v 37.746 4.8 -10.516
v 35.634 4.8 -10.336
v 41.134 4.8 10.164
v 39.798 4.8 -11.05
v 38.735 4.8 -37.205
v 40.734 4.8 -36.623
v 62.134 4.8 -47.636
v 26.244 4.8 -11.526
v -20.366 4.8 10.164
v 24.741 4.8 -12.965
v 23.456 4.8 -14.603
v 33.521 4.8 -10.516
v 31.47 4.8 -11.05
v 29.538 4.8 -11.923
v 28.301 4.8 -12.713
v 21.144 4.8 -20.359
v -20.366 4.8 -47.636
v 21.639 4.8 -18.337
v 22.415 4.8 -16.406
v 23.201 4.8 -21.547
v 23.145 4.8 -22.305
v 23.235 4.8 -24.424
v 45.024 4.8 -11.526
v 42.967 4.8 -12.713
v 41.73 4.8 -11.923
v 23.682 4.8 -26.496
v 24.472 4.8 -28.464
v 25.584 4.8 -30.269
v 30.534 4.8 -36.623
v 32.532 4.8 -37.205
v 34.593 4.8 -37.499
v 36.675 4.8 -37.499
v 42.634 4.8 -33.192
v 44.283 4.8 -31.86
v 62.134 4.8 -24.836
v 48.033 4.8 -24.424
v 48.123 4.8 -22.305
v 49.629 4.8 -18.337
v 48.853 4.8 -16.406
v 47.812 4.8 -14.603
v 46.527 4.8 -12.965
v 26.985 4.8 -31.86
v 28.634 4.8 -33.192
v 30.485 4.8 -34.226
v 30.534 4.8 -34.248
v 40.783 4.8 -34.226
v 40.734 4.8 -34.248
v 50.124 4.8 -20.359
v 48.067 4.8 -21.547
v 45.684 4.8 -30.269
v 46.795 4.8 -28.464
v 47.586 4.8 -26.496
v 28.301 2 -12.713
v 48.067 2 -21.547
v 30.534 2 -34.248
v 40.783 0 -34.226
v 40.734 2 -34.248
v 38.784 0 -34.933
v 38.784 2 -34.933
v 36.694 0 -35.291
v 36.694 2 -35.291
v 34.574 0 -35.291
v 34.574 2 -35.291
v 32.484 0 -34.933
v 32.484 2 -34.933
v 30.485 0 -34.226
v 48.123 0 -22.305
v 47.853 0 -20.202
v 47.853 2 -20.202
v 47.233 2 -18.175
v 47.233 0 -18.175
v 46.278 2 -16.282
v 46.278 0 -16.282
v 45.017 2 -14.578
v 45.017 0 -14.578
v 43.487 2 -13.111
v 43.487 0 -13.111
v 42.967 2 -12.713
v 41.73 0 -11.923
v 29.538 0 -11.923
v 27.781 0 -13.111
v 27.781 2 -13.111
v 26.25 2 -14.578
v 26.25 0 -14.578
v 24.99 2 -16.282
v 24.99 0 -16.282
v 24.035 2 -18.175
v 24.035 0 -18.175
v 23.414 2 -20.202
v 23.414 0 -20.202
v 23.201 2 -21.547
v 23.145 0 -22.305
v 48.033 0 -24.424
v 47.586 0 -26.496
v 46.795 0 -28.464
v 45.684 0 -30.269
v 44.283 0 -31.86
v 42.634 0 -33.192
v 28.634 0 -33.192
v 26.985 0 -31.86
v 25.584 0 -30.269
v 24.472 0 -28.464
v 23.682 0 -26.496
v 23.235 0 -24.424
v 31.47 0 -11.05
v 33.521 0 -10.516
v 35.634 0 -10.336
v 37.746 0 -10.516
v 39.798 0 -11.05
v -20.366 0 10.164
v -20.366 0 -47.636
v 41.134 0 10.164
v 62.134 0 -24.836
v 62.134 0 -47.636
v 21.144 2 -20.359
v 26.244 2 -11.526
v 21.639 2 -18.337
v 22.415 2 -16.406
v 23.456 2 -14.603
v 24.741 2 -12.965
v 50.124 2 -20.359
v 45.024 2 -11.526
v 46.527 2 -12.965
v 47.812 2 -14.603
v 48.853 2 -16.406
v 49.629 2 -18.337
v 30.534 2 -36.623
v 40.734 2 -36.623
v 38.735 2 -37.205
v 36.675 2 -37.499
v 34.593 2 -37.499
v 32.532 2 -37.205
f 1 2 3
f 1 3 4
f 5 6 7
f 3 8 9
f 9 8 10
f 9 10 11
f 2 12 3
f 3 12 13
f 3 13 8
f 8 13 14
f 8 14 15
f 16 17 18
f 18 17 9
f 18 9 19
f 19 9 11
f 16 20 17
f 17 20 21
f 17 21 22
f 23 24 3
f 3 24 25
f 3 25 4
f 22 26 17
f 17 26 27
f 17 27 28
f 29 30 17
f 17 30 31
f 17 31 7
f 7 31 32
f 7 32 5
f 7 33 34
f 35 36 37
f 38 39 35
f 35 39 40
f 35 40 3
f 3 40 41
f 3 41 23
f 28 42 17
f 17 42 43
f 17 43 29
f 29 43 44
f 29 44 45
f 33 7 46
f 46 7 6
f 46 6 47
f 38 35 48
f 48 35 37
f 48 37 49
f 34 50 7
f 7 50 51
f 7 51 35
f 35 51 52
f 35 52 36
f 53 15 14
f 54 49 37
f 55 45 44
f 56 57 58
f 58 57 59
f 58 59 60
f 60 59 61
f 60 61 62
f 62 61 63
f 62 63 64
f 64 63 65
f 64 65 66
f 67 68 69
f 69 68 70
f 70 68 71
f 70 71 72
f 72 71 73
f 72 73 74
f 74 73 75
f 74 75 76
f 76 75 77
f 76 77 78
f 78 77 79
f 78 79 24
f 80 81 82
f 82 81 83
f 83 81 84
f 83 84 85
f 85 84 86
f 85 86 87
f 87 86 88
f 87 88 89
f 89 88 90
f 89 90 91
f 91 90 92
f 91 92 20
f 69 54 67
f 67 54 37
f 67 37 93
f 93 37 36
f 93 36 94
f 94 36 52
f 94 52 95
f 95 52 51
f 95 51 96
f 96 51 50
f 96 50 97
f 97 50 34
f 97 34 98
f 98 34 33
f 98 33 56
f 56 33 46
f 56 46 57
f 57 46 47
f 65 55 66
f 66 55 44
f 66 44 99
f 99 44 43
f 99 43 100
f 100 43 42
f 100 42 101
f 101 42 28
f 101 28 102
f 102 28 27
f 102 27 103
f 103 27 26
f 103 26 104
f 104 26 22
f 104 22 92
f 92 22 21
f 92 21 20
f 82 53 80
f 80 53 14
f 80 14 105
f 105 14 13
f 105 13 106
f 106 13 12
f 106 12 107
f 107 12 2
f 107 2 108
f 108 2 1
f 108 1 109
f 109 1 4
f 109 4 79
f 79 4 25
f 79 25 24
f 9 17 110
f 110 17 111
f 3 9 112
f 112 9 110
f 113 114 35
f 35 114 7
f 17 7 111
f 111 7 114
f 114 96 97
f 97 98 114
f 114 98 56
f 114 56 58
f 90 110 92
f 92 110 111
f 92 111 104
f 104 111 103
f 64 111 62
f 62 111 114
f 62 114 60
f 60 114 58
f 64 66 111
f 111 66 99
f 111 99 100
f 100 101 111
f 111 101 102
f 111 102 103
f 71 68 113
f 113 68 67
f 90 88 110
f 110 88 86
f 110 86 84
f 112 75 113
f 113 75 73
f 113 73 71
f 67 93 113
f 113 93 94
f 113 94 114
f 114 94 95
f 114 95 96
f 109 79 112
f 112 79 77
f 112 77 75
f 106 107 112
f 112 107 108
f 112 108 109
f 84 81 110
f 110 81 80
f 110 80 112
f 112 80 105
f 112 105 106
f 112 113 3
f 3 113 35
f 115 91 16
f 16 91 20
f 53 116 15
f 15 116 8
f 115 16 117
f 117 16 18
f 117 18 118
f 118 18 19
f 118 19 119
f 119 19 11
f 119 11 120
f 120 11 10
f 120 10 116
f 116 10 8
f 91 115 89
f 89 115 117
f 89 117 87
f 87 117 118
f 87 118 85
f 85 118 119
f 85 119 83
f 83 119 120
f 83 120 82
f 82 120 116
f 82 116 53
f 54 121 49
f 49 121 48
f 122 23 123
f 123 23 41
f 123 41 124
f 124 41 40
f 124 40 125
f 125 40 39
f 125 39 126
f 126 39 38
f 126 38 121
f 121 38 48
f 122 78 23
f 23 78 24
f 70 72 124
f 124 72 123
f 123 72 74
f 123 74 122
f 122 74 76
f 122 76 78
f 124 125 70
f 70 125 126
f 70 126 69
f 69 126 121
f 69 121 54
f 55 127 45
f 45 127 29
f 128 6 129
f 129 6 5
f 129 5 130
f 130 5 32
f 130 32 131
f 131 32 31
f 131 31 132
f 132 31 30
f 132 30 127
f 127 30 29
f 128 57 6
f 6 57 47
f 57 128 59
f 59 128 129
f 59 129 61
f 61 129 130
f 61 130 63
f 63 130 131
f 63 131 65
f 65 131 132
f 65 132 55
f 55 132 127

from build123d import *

# Parameters (mm, degrees)
SKETCH1_W           = 82.5
SKETCH1_H           = 57.8
BOSS_EXTRUDE1_DEPTH = 4.8
SKETCH2_R           = 12.5
CUT_EXTRUDE1_DEPTH  = 4.8
CUT_EXTRUDE2_DEPTH  = 2.8


with BuildPart() as part:
    # Sketch1 → Boss-Extrude1 (new body)
    with BuildSketch(Plane(origin=(0, 0, 0), x_dir=(1, 0, 0), z_dir=(0, 1, 0))):
        with Locations((20.883891213, 18.735983264)):
            Rectangle(SKETCH1_W, SKETCH1_H)
    extrude(amount=BOSS_EXTRUDE1_DEPTH)

    # Sketch2 → Cut-Extrude1 (cut)
    with BuildSketch(Plane(origin=(0, 4.8, 0), x_dir=(1, 0, 0), z_dir=(0, 1, 0))):
        with Locations((35.633891213, 22.835983264)):
            Circle(SKETCH2_R)
        Polygon((41.133891213, -10.164016736), (62.133891213, 24.835983264), (62.133891213, -10.164016736), align=None)
    extrude(amount=-CUT_EXTRUDE1_DEPTH, mode=Mode.SUBTRACT)

    # Sketch3 → Cut-Extrude2 (cut)
    with BuildSketch(Plane(origin=(0, 4.8, 0), x_dir=(1, 0, 0), z_dir=(0, 1, 0))):
        with BuildLine():
            ThreePointArc((30.533891213, 34.248257358), (33.026538742, 35.061027766), (35.633891213, 35.335983264))
            Line((35.633891213, 35.335983264), (35.633891213, 37.535983264))
            ThreePointArc((35.633891213, 37.535983264), (33.04334785, 37.30592055), (30.533891213, 36.622933615))
            Line((30.533891213, 36.622933615), (30.533891213, 34.248257358))
        make_face()
        with BuildLine():
            Line((35.633891213, 37.535983264), (35.633891213, 35.335983264))
            ThreePointArc((35.633891213, 35.335983264), (38.241243685, 35.061027766), (40.733891213, 34.248257358))
            Line((40.733891213, 34.248257358), (40.733891213, 36.622933615))
            ThreePointArc((40.733891213, 36.622933615), (38.224434576, 37.30592055), (35.633891213, 37.535983264))
        make_face()
        with BuildLine():
            ThreePointArc((48.067210494, 21.546575776), (47.524766551, 18.981494489), (46.459208761, 16.585983264))
            Line((46.459208761, 16.585983264), (48.364464649, 15.485983264))
            ThreePointArc((48.364464649, 15.485983264), (49.460496176, 17.844490982), (50.123740459, 20.359237647))
            Line((50.123740459, 20.359237647), (48.067210494, 21.546575776))
        make_face()
        with BuildLine():
            Line((48.364464649, 15.485983264), (46.459208761, 16.585983264))
            ThreePointArc((46.459208761, 16.585983264), (44.917414079, 14.465427535), (42.967210494, 12.713116657))
            Line((42.967210494, 12.713116657), (45.023740459, 11.525778528))
            ThreePointArc((45.023740459, 11.525778528), (46.869952814, 13.357538258), (48.364464649, 15.485983264))
        make_face()
        with BuildLine():
            Line((22.903317778, 15.485983264), (24.808573666, 16.585983264))
            ThreePointArc((24.808573666, 16.585983264), (23.743015876, 18.981494489), (23.200571933, 21.546575776))
            Line((23.200571933, 21.546575776), (21.144041968, 20.359237647))
            ThreePointArc((21.144041968, 20.359237647), (21.80728625, 17.844490982), (22.903317778, 15.485983264))
        make_face()
        with BuildLine():
            ThreePointArc((28.300571933, 12.713116657), (26.350368348, 14.465427535), (24.808573666, 16.585983264))
            Line((24.808573666, 16.585983264), (22.903317778, 15.485983264))
            ThreePointArc((22.903317778, 15.485983264), (24.397829613, 13.357538258), (26.244041968, 11.525778528))
            Line((26.244041968, 11.525778528), (28.300571933, 12.713116657))
        make_face()
    extrude(amount=-CUT_EXTRUDE2_DEPTH, mode=Mode.SUBTRACT)


solid = part.part
